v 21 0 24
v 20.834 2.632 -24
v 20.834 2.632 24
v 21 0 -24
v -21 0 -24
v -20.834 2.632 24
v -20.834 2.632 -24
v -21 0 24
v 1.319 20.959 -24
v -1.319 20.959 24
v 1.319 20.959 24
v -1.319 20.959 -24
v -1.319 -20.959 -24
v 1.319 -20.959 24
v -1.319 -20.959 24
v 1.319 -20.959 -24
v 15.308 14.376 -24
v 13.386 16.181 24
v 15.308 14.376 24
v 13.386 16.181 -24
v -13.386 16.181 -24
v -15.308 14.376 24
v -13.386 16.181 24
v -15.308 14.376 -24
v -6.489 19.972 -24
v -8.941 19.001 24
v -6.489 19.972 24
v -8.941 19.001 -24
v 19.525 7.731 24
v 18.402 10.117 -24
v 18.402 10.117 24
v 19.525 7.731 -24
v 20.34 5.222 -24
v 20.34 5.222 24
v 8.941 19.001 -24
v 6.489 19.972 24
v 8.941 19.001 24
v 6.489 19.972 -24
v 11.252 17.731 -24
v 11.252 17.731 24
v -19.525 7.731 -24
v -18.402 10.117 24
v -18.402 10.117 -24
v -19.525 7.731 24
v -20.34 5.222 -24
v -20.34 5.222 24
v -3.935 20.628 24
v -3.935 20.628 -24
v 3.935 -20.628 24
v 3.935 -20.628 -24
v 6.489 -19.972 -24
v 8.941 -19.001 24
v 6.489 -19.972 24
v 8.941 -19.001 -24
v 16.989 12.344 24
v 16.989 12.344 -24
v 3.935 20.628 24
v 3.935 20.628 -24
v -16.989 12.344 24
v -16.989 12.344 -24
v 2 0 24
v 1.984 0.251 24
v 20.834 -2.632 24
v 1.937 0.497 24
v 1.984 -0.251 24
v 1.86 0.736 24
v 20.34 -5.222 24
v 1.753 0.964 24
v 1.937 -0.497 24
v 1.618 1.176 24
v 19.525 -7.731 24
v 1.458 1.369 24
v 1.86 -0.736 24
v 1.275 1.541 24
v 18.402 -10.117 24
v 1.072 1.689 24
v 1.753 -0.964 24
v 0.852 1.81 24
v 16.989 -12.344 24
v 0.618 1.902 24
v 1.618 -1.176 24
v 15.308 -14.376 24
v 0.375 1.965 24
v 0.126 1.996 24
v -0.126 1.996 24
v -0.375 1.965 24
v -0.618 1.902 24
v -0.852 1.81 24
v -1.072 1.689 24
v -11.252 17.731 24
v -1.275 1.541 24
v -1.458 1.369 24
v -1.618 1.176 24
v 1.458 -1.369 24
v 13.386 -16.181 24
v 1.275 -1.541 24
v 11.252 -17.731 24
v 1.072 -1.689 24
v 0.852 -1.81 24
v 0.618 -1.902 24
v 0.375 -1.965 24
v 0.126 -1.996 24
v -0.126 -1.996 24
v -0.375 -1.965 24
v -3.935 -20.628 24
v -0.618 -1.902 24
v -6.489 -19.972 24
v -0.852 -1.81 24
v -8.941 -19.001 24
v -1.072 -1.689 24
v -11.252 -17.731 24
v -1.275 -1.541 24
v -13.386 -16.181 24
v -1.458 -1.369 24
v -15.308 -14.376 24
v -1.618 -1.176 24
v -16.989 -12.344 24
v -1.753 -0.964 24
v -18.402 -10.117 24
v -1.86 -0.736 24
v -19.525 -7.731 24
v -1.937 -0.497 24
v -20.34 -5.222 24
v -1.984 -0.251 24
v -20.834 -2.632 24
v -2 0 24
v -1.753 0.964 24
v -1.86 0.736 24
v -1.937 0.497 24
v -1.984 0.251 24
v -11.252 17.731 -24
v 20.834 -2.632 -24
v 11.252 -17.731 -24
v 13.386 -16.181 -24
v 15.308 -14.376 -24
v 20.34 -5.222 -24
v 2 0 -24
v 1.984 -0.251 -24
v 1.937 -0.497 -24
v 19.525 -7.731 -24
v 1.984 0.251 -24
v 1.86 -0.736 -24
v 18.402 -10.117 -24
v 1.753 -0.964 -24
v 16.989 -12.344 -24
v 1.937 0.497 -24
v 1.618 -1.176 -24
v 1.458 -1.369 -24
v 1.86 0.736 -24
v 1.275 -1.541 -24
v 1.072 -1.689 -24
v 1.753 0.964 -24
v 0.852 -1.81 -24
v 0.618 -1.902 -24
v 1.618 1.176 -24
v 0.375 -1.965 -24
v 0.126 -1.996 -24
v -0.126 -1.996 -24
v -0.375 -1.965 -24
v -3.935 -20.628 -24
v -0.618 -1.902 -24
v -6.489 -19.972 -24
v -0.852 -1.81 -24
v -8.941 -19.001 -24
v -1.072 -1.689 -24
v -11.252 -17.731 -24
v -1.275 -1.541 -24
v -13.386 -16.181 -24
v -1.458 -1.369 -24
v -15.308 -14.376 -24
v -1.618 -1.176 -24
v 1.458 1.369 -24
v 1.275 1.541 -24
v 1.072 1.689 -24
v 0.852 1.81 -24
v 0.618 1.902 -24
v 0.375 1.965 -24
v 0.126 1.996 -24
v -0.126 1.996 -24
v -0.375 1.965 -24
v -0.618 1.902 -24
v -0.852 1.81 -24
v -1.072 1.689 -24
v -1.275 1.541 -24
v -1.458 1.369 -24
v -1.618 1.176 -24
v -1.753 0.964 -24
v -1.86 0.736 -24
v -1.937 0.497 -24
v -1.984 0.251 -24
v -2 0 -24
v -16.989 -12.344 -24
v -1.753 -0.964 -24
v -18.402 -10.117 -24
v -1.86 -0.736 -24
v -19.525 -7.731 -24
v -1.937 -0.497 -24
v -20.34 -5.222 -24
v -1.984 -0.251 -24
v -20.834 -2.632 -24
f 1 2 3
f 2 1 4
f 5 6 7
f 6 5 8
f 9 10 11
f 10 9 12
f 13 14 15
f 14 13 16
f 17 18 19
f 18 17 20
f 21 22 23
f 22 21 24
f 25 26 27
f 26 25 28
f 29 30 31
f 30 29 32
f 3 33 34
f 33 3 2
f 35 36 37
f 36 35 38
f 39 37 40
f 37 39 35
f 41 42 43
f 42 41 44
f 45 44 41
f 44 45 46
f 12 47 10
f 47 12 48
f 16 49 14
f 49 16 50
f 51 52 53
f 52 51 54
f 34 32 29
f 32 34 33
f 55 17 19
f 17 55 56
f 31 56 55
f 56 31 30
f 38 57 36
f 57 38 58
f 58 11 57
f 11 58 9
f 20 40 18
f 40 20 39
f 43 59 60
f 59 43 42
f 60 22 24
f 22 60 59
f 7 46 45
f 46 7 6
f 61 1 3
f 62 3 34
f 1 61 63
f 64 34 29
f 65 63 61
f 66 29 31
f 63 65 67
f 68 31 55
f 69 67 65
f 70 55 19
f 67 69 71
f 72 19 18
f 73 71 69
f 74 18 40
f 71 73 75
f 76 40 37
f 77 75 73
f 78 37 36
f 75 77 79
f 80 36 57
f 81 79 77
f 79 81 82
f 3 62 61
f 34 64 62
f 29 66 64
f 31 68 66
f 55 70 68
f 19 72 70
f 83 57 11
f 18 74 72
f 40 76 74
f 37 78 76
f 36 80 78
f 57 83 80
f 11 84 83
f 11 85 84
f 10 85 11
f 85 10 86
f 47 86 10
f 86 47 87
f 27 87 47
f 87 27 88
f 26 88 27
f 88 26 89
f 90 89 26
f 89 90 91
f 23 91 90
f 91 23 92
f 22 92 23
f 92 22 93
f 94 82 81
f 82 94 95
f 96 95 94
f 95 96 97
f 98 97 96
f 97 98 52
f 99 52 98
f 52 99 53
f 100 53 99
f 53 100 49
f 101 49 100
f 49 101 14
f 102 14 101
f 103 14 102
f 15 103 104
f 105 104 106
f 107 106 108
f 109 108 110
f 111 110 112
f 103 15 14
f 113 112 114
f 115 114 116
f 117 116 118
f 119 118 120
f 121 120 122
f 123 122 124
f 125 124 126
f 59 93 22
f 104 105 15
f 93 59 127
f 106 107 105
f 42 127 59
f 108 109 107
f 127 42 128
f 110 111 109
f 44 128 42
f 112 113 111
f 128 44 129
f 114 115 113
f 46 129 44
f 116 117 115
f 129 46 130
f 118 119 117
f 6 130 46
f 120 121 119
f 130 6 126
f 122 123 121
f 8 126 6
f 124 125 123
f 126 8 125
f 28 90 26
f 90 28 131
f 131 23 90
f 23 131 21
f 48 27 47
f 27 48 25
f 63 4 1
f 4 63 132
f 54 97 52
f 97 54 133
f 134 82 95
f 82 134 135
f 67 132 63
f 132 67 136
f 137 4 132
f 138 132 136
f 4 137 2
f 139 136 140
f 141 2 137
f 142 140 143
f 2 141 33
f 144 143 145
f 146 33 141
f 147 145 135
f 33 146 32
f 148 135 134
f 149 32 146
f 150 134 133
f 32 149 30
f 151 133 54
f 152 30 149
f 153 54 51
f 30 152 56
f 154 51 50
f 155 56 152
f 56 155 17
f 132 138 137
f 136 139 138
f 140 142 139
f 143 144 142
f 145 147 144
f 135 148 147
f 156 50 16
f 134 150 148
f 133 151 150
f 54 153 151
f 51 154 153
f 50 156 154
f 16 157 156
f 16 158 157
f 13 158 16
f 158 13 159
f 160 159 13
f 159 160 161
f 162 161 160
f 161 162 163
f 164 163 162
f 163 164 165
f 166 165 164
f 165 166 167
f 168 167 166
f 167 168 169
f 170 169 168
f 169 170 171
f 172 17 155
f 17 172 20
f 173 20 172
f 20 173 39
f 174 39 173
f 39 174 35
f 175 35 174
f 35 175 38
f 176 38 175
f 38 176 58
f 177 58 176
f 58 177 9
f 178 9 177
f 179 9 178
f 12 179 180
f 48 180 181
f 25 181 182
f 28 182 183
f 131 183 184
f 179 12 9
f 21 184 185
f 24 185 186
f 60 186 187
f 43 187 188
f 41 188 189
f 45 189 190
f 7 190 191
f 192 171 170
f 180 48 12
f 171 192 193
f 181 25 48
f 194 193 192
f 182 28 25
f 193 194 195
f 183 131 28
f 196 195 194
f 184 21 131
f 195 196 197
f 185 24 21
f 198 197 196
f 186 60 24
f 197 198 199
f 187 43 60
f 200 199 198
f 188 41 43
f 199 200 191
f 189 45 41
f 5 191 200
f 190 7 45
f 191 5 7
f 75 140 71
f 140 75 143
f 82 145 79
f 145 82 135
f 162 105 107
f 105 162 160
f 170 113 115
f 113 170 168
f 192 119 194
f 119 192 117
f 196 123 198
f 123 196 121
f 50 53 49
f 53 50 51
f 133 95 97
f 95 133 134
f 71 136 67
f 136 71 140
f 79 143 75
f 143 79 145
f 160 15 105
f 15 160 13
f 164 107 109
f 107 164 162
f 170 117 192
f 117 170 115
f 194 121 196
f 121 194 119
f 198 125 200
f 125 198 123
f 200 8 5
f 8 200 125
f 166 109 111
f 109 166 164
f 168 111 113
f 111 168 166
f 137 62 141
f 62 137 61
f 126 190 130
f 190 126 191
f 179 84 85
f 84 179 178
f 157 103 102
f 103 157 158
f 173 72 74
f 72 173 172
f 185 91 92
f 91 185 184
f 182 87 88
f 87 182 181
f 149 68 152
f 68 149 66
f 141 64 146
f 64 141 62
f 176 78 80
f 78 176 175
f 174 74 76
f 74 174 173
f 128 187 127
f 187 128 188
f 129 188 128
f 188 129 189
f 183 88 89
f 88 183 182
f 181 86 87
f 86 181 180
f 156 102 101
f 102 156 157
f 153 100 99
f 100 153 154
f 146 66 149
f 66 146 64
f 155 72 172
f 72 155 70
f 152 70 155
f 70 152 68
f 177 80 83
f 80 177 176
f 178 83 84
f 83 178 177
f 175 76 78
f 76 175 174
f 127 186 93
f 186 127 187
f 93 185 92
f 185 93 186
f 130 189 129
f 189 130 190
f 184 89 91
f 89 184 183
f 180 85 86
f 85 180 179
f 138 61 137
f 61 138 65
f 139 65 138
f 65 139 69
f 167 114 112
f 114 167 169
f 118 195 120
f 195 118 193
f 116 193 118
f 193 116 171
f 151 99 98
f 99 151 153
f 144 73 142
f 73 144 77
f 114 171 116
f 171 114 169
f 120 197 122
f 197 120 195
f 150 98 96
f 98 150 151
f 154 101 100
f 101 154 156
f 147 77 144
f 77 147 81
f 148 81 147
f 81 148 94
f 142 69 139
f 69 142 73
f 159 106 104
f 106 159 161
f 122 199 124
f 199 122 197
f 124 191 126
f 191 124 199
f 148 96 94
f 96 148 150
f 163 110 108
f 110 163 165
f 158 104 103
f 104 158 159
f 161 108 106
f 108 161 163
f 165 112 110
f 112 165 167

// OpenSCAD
$fn = 50;


difference() {
	union() {
		translate(v = [0, 0, -24.0000000000]) {
			cylinder(h = 48, r = 21.0000000000);
		}
	}
	union() {
		translate(v = [0, 0, -100.0000000000]) {
			cylinder(h = 200, r = 2);
		}
	}
}
